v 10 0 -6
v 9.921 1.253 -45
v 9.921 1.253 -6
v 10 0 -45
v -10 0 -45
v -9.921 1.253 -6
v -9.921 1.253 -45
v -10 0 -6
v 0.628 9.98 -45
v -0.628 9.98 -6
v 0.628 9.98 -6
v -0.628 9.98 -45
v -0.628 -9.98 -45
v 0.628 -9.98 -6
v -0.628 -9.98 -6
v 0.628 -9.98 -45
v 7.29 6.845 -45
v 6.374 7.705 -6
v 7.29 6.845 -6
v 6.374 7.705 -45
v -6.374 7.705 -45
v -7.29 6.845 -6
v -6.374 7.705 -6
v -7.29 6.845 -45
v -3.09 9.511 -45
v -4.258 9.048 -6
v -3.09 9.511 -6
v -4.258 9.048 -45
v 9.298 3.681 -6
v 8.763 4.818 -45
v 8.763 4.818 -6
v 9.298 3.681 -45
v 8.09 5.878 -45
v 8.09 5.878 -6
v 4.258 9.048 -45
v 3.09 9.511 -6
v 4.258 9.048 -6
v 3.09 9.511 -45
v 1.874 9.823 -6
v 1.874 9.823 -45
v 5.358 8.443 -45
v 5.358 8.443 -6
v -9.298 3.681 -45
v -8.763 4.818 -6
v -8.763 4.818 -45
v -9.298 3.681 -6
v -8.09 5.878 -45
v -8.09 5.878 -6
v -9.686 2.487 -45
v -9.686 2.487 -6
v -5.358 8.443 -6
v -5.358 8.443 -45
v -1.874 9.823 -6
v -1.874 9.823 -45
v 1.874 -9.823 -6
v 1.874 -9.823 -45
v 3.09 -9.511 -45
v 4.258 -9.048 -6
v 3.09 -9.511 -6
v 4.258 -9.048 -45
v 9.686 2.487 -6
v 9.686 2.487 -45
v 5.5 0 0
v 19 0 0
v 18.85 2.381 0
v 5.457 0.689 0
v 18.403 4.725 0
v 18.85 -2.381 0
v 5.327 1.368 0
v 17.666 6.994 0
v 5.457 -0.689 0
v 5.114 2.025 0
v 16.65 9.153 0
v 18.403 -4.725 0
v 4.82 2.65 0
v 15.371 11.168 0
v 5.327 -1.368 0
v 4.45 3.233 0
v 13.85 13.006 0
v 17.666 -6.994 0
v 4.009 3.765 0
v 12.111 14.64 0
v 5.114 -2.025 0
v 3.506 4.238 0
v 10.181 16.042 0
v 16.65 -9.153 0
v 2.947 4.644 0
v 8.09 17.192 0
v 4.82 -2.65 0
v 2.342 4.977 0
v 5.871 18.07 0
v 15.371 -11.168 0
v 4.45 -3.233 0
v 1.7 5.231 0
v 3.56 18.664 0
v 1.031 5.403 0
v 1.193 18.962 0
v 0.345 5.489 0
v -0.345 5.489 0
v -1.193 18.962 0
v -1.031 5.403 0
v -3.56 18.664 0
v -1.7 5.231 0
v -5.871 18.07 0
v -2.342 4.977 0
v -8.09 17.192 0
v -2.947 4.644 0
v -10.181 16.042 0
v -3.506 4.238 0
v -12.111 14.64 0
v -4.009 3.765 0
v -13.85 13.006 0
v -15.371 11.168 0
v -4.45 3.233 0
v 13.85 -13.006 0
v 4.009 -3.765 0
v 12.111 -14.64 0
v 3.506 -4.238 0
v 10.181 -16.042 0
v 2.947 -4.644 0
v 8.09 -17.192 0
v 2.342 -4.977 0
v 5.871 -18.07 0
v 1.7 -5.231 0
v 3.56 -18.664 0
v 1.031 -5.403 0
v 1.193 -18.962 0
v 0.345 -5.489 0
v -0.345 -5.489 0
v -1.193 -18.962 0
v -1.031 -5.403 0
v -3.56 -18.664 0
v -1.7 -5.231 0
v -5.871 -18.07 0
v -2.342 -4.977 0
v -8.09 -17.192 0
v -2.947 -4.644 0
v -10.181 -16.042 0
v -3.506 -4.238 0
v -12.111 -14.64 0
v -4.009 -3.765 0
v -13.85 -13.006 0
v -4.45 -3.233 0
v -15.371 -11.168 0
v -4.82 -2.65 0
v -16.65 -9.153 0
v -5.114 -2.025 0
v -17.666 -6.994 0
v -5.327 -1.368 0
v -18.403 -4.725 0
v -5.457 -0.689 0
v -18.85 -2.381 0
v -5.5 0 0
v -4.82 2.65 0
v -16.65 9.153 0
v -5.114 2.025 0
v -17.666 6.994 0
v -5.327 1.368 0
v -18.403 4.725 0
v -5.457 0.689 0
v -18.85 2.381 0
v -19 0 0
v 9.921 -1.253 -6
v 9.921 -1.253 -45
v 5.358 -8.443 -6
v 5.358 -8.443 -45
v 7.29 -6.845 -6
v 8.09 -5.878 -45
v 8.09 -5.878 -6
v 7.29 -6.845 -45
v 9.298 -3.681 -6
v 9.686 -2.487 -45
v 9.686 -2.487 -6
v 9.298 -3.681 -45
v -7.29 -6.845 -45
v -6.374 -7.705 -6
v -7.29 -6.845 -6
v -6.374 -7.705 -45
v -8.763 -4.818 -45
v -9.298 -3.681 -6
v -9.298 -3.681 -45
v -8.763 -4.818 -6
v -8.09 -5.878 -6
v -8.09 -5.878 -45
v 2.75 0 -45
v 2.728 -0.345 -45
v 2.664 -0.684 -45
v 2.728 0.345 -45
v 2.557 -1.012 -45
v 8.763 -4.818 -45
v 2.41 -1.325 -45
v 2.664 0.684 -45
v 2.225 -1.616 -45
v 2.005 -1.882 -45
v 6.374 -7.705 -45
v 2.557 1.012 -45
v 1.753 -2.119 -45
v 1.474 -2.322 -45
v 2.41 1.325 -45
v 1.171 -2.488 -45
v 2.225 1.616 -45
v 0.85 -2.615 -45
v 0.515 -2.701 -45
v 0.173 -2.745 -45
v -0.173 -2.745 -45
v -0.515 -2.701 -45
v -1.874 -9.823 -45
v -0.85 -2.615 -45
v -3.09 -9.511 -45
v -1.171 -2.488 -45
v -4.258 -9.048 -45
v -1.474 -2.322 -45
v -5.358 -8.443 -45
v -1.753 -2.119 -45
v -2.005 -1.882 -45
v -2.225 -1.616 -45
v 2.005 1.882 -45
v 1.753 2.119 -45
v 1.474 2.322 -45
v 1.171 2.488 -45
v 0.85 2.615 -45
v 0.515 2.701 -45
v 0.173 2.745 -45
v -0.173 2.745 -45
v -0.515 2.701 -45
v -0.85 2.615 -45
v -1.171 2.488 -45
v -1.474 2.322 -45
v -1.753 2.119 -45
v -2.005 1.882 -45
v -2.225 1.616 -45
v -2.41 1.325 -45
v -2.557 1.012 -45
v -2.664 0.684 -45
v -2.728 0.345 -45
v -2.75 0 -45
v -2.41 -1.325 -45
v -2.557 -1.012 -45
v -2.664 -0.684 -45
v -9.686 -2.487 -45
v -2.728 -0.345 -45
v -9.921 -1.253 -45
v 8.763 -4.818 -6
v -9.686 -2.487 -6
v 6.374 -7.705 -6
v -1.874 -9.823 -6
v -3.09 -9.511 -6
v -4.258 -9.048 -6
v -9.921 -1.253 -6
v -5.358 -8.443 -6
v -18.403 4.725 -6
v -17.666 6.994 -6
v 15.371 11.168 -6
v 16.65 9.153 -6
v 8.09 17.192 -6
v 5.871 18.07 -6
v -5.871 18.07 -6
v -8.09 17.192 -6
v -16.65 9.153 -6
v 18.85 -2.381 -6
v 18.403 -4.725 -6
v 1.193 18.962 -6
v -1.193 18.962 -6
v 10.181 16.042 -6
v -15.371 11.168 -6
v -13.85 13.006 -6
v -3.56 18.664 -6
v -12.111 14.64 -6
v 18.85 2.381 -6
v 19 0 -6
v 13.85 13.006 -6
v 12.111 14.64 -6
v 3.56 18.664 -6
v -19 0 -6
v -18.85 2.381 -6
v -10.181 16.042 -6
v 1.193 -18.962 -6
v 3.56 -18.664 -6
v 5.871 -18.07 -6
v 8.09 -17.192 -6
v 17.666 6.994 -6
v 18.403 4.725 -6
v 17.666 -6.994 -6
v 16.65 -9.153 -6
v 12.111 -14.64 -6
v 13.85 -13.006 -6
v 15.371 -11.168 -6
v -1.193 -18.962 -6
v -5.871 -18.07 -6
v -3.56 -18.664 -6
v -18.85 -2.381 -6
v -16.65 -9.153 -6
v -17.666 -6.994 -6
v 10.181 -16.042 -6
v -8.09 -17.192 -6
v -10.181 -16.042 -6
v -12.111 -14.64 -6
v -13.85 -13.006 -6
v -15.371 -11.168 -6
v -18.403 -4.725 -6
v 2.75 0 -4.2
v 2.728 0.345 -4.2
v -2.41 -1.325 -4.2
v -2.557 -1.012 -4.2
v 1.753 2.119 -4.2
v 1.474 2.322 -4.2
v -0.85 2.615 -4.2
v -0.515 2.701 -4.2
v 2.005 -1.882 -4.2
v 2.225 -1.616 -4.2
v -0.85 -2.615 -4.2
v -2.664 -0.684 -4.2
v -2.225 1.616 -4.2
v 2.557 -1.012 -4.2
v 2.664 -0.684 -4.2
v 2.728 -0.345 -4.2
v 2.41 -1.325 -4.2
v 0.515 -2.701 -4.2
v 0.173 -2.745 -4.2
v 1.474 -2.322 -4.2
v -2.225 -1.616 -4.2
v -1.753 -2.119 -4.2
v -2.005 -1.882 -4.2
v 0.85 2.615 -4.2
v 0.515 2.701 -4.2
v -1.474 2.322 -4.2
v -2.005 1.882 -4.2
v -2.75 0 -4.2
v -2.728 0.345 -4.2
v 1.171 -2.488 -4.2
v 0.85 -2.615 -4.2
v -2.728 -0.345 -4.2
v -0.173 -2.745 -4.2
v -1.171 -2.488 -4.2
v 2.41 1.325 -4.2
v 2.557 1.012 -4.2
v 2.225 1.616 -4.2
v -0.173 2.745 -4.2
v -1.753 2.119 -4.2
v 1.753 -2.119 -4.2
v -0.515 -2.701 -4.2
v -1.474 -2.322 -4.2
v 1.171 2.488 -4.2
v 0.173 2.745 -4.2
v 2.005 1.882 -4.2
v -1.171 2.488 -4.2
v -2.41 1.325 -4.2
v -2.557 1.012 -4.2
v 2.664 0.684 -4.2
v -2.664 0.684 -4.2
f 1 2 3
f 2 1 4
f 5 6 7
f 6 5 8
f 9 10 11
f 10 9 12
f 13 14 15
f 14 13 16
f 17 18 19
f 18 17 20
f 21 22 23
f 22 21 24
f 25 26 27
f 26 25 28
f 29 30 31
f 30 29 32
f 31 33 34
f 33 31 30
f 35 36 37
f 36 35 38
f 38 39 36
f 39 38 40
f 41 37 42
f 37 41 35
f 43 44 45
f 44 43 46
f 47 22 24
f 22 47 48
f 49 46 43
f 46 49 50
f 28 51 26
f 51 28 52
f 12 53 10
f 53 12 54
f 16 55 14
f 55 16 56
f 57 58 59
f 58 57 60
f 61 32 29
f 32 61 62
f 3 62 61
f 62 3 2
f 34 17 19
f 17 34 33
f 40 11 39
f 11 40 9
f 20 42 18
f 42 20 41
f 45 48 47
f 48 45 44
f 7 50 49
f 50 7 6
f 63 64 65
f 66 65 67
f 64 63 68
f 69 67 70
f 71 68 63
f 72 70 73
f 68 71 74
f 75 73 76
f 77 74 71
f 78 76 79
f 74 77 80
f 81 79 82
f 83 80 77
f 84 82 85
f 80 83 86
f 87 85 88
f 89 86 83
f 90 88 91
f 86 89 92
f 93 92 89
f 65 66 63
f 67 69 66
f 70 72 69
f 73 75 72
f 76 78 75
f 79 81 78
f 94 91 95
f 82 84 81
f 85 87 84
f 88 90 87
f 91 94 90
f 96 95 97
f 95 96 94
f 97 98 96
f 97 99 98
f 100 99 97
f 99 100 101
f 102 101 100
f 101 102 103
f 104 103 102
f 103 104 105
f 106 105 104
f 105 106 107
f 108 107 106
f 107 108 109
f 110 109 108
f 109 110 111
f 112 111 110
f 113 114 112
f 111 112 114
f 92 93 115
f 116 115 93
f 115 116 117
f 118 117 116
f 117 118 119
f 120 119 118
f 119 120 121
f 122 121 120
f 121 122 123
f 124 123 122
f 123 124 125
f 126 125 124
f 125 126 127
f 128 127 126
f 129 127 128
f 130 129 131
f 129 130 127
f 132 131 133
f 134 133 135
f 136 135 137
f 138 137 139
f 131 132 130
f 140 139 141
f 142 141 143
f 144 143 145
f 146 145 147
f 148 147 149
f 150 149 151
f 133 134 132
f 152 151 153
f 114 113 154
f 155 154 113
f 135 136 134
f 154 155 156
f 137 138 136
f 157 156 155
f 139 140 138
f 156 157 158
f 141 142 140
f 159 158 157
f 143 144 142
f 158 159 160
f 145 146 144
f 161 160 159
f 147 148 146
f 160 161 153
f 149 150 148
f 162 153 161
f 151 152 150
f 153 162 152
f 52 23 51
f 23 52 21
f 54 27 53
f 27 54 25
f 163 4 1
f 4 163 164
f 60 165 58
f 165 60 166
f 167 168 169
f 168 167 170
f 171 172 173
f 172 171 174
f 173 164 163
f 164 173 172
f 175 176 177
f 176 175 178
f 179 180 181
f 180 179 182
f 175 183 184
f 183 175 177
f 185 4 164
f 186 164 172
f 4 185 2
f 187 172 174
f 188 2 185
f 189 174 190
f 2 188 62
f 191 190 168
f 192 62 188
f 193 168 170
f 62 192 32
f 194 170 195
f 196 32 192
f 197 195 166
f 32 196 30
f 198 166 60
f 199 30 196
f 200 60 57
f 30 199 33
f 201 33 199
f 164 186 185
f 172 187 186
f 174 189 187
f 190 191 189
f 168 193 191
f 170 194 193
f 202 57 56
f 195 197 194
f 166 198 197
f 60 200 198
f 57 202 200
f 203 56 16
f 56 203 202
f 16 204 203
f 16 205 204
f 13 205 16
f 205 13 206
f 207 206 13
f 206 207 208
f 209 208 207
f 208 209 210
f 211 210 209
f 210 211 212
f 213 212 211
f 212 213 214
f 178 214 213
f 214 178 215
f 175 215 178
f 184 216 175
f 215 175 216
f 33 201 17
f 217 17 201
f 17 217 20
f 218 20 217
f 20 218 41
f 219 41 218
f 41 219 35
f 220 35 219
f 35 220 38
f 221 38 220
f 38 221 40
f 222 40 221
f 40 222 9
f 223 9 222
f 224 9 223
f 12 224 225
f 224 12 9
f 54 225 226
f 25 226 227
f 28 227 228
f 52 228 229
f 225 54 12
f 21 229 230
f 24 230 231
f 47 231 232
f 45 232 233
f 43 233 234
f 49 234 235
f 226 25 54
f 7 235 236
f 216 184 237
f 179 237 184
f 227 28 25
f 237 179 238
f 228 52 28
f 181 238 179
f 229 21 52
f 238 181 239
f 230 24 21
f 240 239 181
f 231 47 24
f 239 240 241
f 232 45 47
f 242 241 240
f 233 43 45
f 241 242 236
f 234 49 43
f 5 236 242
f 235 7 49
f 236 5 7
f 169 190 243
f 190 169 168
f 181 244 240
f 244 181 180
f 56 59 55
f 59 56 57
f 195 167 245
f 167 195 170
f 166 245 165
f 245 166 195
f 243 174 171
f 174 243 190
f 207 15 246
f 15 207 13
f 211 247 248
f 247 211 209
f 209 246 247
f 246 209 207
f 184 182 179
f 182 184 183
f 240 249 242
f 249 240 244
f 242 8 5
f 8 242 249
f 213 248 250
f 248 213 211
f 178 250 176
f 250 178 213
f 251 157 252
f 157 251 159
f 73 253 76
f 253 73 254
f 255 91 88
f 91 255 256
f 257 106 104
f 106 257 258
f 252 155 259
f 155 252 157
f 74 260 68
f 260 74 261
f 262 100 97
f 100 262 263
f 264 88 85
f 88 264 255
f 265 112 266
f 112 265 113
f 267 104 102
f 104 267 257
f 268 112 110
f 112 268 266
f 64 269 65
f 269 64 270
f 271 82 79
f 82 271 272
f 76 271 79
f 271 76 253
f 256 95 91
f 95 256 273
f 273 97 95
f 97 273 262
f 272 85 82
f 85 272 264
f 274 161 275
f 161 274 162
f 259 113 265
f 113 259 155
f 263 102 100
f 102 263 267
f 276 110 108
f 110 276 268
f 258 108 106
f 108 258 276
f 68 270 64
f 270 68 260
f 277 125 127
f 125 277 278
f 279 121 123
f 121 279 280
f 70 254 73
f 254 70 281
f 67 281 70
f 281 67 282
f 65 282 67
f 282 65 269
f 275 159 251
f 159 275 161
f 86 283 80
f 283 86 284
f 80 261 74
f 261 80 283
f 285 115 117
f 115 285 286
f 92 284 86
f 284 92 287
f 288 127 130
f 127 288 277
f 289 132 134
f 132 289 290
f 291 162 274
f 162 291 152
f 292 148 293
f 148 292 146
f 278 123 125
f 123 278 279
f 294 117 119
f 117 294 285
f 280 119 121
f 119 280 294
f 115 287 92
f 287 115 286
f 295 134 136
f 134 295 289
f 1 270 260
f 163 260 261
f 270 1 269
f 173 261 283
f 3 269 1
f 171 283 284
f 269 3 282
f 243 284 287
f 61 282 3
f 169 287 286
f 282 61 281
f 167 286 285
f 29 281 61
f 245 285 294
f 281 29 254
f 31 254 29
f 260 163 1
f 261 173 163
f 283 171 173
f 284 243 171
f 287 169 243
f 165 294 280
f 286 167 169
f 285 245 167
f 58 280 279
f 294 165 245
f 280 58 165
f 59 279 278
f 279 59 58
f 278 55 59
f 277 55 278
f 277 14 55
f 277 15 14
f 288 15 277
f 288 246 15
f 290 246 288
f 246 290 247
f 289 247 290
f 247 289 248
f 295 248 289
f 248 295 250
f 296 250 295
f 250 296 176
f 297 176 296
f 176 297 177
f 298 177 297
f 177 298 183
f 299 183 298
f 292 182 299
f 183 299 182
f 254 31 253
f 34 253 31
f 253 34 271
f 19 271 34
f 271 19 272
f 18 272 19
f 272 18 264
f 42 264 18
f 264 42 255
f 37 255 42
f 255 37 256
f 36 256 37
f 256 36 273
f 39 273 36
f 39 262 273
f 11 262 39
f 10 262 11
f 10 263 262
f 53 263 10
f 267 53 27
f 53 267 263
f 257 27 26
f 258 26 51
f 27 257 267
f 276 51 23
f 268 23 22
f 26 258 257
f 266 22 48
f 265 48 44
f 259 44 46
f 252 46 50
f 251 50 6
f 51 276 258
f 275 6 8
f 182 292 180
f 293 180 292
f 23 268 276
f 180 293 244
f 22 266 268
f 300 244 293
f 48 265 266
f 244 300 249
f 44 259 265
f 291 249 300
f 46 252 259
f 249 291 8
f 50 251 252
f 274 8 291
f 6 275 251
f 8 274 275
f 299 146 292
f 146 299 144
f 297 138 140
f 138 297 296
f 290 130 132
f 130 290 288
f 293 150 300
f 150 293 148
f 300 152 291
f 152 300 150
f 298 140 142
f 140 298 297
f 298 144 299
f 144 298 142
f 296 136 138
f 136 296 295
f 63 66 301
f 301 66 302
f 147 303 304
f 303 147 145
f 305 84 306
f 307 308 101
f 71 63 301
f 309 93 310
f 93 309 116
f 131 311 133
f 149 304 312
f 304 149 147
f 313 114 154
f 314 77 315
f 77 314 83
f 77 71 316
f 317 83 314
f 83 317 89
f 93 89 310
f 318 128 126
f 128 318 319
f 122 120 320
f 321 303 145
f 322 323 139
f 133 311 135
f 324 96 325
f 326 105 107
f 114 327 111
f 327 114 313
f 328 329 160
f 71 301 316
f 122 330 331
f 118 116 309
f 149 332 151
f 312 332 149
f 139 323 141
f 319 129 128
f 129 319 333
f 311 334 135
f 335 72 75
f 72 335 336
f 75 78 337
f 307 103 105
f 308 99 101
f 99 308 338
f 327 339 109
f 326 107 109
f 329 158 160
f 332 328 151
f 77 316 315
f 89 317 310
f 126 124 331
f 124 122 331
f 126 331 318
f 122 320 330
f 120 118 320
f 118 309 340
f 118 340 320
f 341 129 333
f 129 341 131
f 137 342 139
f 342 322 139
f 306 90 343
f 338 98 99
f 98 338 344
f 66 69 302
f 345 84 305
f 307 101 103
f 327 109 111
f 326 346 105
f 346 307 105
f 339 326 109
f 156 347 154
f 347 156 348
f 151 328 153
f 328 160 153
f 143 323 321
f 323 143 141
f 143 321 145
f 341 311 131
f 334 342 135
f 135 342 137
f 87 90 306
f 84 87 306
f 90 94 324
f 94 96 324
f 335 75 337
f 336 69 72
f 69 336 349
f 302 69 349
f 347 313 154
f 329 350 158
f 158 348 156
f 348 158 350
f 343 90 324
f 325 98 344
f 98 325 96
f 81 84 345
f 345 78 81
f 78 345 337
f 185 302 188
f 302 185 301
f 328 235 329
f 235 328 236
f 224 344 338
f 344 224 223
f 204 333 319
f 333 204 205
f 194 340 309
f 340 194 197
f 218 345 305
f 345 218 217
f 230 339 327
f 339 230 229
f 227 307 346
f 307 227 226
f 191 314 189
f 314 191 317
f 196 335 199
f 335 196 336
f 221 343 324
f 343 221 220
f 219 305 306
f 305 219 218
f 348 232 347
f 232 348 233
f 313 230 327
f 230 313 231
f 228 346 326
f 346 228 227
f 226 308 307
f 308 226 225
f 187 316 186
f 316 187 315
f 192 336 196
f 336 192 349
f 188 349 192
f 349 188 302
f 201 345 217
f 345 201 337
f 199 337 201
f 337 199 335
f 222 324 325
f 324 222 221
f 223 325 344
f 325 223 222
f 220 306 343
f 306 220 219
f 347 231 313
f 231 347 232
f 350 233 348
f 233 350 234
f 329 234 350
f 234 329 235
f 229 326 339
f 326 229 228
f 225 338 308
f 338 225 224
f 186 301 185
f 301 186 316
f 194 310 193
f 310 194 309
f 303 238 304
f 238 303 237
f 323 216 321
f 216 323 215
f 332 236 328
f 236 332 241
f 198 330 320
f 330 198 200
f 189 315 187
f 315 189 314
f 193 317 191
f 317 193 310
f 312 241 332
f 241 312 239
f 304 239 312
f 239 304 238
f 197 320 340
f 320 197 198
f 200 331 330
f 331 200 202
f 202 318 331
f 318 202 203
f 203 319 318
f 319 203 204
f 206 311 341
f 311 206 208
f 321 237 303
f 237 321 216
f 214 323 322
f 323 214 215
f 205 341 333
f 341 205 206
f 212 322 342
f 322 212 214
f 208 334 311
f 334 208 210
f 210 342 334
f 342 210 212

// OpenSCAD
$fn = 50;


difference() {
	union() {
		translate(v = [0, 0, -45.0000000000]) {
			cylinder(h = 45, r = 10.0000000000);
		}
		translate(v = [0, 0, -6.0000000000]) {
			cylinder(h = 6, r = 19.0000000000);
		}
	}
	union() {
		translate(v = [0, 0, 0]) {
			rotate(a = [0, 0, 0]) {
				difference() {
					union() {
						#translate(v = [0, 0, -45.0000000000]) {
							cylinder(h = 45, r = 2.2500000000);
						}
						#translate(v = [0, 0, -4.2000000000]) {
							cylinder(h = 4.2000000000, r = 10.0000000000, r1 = 2.7500000000, r2 = 5.5000000000);
						}
						#translate(v = [0, 0, -45.0000000000]) {
							cylinder(h = 45, r = 2.7500000000);
						}
						#translate(v = [0, 0, -45.0000000000]) {
							cylinder(h = 45, r = 2.2500000000);
						}
					}
					union();
				}
			}
		}
	}
}
